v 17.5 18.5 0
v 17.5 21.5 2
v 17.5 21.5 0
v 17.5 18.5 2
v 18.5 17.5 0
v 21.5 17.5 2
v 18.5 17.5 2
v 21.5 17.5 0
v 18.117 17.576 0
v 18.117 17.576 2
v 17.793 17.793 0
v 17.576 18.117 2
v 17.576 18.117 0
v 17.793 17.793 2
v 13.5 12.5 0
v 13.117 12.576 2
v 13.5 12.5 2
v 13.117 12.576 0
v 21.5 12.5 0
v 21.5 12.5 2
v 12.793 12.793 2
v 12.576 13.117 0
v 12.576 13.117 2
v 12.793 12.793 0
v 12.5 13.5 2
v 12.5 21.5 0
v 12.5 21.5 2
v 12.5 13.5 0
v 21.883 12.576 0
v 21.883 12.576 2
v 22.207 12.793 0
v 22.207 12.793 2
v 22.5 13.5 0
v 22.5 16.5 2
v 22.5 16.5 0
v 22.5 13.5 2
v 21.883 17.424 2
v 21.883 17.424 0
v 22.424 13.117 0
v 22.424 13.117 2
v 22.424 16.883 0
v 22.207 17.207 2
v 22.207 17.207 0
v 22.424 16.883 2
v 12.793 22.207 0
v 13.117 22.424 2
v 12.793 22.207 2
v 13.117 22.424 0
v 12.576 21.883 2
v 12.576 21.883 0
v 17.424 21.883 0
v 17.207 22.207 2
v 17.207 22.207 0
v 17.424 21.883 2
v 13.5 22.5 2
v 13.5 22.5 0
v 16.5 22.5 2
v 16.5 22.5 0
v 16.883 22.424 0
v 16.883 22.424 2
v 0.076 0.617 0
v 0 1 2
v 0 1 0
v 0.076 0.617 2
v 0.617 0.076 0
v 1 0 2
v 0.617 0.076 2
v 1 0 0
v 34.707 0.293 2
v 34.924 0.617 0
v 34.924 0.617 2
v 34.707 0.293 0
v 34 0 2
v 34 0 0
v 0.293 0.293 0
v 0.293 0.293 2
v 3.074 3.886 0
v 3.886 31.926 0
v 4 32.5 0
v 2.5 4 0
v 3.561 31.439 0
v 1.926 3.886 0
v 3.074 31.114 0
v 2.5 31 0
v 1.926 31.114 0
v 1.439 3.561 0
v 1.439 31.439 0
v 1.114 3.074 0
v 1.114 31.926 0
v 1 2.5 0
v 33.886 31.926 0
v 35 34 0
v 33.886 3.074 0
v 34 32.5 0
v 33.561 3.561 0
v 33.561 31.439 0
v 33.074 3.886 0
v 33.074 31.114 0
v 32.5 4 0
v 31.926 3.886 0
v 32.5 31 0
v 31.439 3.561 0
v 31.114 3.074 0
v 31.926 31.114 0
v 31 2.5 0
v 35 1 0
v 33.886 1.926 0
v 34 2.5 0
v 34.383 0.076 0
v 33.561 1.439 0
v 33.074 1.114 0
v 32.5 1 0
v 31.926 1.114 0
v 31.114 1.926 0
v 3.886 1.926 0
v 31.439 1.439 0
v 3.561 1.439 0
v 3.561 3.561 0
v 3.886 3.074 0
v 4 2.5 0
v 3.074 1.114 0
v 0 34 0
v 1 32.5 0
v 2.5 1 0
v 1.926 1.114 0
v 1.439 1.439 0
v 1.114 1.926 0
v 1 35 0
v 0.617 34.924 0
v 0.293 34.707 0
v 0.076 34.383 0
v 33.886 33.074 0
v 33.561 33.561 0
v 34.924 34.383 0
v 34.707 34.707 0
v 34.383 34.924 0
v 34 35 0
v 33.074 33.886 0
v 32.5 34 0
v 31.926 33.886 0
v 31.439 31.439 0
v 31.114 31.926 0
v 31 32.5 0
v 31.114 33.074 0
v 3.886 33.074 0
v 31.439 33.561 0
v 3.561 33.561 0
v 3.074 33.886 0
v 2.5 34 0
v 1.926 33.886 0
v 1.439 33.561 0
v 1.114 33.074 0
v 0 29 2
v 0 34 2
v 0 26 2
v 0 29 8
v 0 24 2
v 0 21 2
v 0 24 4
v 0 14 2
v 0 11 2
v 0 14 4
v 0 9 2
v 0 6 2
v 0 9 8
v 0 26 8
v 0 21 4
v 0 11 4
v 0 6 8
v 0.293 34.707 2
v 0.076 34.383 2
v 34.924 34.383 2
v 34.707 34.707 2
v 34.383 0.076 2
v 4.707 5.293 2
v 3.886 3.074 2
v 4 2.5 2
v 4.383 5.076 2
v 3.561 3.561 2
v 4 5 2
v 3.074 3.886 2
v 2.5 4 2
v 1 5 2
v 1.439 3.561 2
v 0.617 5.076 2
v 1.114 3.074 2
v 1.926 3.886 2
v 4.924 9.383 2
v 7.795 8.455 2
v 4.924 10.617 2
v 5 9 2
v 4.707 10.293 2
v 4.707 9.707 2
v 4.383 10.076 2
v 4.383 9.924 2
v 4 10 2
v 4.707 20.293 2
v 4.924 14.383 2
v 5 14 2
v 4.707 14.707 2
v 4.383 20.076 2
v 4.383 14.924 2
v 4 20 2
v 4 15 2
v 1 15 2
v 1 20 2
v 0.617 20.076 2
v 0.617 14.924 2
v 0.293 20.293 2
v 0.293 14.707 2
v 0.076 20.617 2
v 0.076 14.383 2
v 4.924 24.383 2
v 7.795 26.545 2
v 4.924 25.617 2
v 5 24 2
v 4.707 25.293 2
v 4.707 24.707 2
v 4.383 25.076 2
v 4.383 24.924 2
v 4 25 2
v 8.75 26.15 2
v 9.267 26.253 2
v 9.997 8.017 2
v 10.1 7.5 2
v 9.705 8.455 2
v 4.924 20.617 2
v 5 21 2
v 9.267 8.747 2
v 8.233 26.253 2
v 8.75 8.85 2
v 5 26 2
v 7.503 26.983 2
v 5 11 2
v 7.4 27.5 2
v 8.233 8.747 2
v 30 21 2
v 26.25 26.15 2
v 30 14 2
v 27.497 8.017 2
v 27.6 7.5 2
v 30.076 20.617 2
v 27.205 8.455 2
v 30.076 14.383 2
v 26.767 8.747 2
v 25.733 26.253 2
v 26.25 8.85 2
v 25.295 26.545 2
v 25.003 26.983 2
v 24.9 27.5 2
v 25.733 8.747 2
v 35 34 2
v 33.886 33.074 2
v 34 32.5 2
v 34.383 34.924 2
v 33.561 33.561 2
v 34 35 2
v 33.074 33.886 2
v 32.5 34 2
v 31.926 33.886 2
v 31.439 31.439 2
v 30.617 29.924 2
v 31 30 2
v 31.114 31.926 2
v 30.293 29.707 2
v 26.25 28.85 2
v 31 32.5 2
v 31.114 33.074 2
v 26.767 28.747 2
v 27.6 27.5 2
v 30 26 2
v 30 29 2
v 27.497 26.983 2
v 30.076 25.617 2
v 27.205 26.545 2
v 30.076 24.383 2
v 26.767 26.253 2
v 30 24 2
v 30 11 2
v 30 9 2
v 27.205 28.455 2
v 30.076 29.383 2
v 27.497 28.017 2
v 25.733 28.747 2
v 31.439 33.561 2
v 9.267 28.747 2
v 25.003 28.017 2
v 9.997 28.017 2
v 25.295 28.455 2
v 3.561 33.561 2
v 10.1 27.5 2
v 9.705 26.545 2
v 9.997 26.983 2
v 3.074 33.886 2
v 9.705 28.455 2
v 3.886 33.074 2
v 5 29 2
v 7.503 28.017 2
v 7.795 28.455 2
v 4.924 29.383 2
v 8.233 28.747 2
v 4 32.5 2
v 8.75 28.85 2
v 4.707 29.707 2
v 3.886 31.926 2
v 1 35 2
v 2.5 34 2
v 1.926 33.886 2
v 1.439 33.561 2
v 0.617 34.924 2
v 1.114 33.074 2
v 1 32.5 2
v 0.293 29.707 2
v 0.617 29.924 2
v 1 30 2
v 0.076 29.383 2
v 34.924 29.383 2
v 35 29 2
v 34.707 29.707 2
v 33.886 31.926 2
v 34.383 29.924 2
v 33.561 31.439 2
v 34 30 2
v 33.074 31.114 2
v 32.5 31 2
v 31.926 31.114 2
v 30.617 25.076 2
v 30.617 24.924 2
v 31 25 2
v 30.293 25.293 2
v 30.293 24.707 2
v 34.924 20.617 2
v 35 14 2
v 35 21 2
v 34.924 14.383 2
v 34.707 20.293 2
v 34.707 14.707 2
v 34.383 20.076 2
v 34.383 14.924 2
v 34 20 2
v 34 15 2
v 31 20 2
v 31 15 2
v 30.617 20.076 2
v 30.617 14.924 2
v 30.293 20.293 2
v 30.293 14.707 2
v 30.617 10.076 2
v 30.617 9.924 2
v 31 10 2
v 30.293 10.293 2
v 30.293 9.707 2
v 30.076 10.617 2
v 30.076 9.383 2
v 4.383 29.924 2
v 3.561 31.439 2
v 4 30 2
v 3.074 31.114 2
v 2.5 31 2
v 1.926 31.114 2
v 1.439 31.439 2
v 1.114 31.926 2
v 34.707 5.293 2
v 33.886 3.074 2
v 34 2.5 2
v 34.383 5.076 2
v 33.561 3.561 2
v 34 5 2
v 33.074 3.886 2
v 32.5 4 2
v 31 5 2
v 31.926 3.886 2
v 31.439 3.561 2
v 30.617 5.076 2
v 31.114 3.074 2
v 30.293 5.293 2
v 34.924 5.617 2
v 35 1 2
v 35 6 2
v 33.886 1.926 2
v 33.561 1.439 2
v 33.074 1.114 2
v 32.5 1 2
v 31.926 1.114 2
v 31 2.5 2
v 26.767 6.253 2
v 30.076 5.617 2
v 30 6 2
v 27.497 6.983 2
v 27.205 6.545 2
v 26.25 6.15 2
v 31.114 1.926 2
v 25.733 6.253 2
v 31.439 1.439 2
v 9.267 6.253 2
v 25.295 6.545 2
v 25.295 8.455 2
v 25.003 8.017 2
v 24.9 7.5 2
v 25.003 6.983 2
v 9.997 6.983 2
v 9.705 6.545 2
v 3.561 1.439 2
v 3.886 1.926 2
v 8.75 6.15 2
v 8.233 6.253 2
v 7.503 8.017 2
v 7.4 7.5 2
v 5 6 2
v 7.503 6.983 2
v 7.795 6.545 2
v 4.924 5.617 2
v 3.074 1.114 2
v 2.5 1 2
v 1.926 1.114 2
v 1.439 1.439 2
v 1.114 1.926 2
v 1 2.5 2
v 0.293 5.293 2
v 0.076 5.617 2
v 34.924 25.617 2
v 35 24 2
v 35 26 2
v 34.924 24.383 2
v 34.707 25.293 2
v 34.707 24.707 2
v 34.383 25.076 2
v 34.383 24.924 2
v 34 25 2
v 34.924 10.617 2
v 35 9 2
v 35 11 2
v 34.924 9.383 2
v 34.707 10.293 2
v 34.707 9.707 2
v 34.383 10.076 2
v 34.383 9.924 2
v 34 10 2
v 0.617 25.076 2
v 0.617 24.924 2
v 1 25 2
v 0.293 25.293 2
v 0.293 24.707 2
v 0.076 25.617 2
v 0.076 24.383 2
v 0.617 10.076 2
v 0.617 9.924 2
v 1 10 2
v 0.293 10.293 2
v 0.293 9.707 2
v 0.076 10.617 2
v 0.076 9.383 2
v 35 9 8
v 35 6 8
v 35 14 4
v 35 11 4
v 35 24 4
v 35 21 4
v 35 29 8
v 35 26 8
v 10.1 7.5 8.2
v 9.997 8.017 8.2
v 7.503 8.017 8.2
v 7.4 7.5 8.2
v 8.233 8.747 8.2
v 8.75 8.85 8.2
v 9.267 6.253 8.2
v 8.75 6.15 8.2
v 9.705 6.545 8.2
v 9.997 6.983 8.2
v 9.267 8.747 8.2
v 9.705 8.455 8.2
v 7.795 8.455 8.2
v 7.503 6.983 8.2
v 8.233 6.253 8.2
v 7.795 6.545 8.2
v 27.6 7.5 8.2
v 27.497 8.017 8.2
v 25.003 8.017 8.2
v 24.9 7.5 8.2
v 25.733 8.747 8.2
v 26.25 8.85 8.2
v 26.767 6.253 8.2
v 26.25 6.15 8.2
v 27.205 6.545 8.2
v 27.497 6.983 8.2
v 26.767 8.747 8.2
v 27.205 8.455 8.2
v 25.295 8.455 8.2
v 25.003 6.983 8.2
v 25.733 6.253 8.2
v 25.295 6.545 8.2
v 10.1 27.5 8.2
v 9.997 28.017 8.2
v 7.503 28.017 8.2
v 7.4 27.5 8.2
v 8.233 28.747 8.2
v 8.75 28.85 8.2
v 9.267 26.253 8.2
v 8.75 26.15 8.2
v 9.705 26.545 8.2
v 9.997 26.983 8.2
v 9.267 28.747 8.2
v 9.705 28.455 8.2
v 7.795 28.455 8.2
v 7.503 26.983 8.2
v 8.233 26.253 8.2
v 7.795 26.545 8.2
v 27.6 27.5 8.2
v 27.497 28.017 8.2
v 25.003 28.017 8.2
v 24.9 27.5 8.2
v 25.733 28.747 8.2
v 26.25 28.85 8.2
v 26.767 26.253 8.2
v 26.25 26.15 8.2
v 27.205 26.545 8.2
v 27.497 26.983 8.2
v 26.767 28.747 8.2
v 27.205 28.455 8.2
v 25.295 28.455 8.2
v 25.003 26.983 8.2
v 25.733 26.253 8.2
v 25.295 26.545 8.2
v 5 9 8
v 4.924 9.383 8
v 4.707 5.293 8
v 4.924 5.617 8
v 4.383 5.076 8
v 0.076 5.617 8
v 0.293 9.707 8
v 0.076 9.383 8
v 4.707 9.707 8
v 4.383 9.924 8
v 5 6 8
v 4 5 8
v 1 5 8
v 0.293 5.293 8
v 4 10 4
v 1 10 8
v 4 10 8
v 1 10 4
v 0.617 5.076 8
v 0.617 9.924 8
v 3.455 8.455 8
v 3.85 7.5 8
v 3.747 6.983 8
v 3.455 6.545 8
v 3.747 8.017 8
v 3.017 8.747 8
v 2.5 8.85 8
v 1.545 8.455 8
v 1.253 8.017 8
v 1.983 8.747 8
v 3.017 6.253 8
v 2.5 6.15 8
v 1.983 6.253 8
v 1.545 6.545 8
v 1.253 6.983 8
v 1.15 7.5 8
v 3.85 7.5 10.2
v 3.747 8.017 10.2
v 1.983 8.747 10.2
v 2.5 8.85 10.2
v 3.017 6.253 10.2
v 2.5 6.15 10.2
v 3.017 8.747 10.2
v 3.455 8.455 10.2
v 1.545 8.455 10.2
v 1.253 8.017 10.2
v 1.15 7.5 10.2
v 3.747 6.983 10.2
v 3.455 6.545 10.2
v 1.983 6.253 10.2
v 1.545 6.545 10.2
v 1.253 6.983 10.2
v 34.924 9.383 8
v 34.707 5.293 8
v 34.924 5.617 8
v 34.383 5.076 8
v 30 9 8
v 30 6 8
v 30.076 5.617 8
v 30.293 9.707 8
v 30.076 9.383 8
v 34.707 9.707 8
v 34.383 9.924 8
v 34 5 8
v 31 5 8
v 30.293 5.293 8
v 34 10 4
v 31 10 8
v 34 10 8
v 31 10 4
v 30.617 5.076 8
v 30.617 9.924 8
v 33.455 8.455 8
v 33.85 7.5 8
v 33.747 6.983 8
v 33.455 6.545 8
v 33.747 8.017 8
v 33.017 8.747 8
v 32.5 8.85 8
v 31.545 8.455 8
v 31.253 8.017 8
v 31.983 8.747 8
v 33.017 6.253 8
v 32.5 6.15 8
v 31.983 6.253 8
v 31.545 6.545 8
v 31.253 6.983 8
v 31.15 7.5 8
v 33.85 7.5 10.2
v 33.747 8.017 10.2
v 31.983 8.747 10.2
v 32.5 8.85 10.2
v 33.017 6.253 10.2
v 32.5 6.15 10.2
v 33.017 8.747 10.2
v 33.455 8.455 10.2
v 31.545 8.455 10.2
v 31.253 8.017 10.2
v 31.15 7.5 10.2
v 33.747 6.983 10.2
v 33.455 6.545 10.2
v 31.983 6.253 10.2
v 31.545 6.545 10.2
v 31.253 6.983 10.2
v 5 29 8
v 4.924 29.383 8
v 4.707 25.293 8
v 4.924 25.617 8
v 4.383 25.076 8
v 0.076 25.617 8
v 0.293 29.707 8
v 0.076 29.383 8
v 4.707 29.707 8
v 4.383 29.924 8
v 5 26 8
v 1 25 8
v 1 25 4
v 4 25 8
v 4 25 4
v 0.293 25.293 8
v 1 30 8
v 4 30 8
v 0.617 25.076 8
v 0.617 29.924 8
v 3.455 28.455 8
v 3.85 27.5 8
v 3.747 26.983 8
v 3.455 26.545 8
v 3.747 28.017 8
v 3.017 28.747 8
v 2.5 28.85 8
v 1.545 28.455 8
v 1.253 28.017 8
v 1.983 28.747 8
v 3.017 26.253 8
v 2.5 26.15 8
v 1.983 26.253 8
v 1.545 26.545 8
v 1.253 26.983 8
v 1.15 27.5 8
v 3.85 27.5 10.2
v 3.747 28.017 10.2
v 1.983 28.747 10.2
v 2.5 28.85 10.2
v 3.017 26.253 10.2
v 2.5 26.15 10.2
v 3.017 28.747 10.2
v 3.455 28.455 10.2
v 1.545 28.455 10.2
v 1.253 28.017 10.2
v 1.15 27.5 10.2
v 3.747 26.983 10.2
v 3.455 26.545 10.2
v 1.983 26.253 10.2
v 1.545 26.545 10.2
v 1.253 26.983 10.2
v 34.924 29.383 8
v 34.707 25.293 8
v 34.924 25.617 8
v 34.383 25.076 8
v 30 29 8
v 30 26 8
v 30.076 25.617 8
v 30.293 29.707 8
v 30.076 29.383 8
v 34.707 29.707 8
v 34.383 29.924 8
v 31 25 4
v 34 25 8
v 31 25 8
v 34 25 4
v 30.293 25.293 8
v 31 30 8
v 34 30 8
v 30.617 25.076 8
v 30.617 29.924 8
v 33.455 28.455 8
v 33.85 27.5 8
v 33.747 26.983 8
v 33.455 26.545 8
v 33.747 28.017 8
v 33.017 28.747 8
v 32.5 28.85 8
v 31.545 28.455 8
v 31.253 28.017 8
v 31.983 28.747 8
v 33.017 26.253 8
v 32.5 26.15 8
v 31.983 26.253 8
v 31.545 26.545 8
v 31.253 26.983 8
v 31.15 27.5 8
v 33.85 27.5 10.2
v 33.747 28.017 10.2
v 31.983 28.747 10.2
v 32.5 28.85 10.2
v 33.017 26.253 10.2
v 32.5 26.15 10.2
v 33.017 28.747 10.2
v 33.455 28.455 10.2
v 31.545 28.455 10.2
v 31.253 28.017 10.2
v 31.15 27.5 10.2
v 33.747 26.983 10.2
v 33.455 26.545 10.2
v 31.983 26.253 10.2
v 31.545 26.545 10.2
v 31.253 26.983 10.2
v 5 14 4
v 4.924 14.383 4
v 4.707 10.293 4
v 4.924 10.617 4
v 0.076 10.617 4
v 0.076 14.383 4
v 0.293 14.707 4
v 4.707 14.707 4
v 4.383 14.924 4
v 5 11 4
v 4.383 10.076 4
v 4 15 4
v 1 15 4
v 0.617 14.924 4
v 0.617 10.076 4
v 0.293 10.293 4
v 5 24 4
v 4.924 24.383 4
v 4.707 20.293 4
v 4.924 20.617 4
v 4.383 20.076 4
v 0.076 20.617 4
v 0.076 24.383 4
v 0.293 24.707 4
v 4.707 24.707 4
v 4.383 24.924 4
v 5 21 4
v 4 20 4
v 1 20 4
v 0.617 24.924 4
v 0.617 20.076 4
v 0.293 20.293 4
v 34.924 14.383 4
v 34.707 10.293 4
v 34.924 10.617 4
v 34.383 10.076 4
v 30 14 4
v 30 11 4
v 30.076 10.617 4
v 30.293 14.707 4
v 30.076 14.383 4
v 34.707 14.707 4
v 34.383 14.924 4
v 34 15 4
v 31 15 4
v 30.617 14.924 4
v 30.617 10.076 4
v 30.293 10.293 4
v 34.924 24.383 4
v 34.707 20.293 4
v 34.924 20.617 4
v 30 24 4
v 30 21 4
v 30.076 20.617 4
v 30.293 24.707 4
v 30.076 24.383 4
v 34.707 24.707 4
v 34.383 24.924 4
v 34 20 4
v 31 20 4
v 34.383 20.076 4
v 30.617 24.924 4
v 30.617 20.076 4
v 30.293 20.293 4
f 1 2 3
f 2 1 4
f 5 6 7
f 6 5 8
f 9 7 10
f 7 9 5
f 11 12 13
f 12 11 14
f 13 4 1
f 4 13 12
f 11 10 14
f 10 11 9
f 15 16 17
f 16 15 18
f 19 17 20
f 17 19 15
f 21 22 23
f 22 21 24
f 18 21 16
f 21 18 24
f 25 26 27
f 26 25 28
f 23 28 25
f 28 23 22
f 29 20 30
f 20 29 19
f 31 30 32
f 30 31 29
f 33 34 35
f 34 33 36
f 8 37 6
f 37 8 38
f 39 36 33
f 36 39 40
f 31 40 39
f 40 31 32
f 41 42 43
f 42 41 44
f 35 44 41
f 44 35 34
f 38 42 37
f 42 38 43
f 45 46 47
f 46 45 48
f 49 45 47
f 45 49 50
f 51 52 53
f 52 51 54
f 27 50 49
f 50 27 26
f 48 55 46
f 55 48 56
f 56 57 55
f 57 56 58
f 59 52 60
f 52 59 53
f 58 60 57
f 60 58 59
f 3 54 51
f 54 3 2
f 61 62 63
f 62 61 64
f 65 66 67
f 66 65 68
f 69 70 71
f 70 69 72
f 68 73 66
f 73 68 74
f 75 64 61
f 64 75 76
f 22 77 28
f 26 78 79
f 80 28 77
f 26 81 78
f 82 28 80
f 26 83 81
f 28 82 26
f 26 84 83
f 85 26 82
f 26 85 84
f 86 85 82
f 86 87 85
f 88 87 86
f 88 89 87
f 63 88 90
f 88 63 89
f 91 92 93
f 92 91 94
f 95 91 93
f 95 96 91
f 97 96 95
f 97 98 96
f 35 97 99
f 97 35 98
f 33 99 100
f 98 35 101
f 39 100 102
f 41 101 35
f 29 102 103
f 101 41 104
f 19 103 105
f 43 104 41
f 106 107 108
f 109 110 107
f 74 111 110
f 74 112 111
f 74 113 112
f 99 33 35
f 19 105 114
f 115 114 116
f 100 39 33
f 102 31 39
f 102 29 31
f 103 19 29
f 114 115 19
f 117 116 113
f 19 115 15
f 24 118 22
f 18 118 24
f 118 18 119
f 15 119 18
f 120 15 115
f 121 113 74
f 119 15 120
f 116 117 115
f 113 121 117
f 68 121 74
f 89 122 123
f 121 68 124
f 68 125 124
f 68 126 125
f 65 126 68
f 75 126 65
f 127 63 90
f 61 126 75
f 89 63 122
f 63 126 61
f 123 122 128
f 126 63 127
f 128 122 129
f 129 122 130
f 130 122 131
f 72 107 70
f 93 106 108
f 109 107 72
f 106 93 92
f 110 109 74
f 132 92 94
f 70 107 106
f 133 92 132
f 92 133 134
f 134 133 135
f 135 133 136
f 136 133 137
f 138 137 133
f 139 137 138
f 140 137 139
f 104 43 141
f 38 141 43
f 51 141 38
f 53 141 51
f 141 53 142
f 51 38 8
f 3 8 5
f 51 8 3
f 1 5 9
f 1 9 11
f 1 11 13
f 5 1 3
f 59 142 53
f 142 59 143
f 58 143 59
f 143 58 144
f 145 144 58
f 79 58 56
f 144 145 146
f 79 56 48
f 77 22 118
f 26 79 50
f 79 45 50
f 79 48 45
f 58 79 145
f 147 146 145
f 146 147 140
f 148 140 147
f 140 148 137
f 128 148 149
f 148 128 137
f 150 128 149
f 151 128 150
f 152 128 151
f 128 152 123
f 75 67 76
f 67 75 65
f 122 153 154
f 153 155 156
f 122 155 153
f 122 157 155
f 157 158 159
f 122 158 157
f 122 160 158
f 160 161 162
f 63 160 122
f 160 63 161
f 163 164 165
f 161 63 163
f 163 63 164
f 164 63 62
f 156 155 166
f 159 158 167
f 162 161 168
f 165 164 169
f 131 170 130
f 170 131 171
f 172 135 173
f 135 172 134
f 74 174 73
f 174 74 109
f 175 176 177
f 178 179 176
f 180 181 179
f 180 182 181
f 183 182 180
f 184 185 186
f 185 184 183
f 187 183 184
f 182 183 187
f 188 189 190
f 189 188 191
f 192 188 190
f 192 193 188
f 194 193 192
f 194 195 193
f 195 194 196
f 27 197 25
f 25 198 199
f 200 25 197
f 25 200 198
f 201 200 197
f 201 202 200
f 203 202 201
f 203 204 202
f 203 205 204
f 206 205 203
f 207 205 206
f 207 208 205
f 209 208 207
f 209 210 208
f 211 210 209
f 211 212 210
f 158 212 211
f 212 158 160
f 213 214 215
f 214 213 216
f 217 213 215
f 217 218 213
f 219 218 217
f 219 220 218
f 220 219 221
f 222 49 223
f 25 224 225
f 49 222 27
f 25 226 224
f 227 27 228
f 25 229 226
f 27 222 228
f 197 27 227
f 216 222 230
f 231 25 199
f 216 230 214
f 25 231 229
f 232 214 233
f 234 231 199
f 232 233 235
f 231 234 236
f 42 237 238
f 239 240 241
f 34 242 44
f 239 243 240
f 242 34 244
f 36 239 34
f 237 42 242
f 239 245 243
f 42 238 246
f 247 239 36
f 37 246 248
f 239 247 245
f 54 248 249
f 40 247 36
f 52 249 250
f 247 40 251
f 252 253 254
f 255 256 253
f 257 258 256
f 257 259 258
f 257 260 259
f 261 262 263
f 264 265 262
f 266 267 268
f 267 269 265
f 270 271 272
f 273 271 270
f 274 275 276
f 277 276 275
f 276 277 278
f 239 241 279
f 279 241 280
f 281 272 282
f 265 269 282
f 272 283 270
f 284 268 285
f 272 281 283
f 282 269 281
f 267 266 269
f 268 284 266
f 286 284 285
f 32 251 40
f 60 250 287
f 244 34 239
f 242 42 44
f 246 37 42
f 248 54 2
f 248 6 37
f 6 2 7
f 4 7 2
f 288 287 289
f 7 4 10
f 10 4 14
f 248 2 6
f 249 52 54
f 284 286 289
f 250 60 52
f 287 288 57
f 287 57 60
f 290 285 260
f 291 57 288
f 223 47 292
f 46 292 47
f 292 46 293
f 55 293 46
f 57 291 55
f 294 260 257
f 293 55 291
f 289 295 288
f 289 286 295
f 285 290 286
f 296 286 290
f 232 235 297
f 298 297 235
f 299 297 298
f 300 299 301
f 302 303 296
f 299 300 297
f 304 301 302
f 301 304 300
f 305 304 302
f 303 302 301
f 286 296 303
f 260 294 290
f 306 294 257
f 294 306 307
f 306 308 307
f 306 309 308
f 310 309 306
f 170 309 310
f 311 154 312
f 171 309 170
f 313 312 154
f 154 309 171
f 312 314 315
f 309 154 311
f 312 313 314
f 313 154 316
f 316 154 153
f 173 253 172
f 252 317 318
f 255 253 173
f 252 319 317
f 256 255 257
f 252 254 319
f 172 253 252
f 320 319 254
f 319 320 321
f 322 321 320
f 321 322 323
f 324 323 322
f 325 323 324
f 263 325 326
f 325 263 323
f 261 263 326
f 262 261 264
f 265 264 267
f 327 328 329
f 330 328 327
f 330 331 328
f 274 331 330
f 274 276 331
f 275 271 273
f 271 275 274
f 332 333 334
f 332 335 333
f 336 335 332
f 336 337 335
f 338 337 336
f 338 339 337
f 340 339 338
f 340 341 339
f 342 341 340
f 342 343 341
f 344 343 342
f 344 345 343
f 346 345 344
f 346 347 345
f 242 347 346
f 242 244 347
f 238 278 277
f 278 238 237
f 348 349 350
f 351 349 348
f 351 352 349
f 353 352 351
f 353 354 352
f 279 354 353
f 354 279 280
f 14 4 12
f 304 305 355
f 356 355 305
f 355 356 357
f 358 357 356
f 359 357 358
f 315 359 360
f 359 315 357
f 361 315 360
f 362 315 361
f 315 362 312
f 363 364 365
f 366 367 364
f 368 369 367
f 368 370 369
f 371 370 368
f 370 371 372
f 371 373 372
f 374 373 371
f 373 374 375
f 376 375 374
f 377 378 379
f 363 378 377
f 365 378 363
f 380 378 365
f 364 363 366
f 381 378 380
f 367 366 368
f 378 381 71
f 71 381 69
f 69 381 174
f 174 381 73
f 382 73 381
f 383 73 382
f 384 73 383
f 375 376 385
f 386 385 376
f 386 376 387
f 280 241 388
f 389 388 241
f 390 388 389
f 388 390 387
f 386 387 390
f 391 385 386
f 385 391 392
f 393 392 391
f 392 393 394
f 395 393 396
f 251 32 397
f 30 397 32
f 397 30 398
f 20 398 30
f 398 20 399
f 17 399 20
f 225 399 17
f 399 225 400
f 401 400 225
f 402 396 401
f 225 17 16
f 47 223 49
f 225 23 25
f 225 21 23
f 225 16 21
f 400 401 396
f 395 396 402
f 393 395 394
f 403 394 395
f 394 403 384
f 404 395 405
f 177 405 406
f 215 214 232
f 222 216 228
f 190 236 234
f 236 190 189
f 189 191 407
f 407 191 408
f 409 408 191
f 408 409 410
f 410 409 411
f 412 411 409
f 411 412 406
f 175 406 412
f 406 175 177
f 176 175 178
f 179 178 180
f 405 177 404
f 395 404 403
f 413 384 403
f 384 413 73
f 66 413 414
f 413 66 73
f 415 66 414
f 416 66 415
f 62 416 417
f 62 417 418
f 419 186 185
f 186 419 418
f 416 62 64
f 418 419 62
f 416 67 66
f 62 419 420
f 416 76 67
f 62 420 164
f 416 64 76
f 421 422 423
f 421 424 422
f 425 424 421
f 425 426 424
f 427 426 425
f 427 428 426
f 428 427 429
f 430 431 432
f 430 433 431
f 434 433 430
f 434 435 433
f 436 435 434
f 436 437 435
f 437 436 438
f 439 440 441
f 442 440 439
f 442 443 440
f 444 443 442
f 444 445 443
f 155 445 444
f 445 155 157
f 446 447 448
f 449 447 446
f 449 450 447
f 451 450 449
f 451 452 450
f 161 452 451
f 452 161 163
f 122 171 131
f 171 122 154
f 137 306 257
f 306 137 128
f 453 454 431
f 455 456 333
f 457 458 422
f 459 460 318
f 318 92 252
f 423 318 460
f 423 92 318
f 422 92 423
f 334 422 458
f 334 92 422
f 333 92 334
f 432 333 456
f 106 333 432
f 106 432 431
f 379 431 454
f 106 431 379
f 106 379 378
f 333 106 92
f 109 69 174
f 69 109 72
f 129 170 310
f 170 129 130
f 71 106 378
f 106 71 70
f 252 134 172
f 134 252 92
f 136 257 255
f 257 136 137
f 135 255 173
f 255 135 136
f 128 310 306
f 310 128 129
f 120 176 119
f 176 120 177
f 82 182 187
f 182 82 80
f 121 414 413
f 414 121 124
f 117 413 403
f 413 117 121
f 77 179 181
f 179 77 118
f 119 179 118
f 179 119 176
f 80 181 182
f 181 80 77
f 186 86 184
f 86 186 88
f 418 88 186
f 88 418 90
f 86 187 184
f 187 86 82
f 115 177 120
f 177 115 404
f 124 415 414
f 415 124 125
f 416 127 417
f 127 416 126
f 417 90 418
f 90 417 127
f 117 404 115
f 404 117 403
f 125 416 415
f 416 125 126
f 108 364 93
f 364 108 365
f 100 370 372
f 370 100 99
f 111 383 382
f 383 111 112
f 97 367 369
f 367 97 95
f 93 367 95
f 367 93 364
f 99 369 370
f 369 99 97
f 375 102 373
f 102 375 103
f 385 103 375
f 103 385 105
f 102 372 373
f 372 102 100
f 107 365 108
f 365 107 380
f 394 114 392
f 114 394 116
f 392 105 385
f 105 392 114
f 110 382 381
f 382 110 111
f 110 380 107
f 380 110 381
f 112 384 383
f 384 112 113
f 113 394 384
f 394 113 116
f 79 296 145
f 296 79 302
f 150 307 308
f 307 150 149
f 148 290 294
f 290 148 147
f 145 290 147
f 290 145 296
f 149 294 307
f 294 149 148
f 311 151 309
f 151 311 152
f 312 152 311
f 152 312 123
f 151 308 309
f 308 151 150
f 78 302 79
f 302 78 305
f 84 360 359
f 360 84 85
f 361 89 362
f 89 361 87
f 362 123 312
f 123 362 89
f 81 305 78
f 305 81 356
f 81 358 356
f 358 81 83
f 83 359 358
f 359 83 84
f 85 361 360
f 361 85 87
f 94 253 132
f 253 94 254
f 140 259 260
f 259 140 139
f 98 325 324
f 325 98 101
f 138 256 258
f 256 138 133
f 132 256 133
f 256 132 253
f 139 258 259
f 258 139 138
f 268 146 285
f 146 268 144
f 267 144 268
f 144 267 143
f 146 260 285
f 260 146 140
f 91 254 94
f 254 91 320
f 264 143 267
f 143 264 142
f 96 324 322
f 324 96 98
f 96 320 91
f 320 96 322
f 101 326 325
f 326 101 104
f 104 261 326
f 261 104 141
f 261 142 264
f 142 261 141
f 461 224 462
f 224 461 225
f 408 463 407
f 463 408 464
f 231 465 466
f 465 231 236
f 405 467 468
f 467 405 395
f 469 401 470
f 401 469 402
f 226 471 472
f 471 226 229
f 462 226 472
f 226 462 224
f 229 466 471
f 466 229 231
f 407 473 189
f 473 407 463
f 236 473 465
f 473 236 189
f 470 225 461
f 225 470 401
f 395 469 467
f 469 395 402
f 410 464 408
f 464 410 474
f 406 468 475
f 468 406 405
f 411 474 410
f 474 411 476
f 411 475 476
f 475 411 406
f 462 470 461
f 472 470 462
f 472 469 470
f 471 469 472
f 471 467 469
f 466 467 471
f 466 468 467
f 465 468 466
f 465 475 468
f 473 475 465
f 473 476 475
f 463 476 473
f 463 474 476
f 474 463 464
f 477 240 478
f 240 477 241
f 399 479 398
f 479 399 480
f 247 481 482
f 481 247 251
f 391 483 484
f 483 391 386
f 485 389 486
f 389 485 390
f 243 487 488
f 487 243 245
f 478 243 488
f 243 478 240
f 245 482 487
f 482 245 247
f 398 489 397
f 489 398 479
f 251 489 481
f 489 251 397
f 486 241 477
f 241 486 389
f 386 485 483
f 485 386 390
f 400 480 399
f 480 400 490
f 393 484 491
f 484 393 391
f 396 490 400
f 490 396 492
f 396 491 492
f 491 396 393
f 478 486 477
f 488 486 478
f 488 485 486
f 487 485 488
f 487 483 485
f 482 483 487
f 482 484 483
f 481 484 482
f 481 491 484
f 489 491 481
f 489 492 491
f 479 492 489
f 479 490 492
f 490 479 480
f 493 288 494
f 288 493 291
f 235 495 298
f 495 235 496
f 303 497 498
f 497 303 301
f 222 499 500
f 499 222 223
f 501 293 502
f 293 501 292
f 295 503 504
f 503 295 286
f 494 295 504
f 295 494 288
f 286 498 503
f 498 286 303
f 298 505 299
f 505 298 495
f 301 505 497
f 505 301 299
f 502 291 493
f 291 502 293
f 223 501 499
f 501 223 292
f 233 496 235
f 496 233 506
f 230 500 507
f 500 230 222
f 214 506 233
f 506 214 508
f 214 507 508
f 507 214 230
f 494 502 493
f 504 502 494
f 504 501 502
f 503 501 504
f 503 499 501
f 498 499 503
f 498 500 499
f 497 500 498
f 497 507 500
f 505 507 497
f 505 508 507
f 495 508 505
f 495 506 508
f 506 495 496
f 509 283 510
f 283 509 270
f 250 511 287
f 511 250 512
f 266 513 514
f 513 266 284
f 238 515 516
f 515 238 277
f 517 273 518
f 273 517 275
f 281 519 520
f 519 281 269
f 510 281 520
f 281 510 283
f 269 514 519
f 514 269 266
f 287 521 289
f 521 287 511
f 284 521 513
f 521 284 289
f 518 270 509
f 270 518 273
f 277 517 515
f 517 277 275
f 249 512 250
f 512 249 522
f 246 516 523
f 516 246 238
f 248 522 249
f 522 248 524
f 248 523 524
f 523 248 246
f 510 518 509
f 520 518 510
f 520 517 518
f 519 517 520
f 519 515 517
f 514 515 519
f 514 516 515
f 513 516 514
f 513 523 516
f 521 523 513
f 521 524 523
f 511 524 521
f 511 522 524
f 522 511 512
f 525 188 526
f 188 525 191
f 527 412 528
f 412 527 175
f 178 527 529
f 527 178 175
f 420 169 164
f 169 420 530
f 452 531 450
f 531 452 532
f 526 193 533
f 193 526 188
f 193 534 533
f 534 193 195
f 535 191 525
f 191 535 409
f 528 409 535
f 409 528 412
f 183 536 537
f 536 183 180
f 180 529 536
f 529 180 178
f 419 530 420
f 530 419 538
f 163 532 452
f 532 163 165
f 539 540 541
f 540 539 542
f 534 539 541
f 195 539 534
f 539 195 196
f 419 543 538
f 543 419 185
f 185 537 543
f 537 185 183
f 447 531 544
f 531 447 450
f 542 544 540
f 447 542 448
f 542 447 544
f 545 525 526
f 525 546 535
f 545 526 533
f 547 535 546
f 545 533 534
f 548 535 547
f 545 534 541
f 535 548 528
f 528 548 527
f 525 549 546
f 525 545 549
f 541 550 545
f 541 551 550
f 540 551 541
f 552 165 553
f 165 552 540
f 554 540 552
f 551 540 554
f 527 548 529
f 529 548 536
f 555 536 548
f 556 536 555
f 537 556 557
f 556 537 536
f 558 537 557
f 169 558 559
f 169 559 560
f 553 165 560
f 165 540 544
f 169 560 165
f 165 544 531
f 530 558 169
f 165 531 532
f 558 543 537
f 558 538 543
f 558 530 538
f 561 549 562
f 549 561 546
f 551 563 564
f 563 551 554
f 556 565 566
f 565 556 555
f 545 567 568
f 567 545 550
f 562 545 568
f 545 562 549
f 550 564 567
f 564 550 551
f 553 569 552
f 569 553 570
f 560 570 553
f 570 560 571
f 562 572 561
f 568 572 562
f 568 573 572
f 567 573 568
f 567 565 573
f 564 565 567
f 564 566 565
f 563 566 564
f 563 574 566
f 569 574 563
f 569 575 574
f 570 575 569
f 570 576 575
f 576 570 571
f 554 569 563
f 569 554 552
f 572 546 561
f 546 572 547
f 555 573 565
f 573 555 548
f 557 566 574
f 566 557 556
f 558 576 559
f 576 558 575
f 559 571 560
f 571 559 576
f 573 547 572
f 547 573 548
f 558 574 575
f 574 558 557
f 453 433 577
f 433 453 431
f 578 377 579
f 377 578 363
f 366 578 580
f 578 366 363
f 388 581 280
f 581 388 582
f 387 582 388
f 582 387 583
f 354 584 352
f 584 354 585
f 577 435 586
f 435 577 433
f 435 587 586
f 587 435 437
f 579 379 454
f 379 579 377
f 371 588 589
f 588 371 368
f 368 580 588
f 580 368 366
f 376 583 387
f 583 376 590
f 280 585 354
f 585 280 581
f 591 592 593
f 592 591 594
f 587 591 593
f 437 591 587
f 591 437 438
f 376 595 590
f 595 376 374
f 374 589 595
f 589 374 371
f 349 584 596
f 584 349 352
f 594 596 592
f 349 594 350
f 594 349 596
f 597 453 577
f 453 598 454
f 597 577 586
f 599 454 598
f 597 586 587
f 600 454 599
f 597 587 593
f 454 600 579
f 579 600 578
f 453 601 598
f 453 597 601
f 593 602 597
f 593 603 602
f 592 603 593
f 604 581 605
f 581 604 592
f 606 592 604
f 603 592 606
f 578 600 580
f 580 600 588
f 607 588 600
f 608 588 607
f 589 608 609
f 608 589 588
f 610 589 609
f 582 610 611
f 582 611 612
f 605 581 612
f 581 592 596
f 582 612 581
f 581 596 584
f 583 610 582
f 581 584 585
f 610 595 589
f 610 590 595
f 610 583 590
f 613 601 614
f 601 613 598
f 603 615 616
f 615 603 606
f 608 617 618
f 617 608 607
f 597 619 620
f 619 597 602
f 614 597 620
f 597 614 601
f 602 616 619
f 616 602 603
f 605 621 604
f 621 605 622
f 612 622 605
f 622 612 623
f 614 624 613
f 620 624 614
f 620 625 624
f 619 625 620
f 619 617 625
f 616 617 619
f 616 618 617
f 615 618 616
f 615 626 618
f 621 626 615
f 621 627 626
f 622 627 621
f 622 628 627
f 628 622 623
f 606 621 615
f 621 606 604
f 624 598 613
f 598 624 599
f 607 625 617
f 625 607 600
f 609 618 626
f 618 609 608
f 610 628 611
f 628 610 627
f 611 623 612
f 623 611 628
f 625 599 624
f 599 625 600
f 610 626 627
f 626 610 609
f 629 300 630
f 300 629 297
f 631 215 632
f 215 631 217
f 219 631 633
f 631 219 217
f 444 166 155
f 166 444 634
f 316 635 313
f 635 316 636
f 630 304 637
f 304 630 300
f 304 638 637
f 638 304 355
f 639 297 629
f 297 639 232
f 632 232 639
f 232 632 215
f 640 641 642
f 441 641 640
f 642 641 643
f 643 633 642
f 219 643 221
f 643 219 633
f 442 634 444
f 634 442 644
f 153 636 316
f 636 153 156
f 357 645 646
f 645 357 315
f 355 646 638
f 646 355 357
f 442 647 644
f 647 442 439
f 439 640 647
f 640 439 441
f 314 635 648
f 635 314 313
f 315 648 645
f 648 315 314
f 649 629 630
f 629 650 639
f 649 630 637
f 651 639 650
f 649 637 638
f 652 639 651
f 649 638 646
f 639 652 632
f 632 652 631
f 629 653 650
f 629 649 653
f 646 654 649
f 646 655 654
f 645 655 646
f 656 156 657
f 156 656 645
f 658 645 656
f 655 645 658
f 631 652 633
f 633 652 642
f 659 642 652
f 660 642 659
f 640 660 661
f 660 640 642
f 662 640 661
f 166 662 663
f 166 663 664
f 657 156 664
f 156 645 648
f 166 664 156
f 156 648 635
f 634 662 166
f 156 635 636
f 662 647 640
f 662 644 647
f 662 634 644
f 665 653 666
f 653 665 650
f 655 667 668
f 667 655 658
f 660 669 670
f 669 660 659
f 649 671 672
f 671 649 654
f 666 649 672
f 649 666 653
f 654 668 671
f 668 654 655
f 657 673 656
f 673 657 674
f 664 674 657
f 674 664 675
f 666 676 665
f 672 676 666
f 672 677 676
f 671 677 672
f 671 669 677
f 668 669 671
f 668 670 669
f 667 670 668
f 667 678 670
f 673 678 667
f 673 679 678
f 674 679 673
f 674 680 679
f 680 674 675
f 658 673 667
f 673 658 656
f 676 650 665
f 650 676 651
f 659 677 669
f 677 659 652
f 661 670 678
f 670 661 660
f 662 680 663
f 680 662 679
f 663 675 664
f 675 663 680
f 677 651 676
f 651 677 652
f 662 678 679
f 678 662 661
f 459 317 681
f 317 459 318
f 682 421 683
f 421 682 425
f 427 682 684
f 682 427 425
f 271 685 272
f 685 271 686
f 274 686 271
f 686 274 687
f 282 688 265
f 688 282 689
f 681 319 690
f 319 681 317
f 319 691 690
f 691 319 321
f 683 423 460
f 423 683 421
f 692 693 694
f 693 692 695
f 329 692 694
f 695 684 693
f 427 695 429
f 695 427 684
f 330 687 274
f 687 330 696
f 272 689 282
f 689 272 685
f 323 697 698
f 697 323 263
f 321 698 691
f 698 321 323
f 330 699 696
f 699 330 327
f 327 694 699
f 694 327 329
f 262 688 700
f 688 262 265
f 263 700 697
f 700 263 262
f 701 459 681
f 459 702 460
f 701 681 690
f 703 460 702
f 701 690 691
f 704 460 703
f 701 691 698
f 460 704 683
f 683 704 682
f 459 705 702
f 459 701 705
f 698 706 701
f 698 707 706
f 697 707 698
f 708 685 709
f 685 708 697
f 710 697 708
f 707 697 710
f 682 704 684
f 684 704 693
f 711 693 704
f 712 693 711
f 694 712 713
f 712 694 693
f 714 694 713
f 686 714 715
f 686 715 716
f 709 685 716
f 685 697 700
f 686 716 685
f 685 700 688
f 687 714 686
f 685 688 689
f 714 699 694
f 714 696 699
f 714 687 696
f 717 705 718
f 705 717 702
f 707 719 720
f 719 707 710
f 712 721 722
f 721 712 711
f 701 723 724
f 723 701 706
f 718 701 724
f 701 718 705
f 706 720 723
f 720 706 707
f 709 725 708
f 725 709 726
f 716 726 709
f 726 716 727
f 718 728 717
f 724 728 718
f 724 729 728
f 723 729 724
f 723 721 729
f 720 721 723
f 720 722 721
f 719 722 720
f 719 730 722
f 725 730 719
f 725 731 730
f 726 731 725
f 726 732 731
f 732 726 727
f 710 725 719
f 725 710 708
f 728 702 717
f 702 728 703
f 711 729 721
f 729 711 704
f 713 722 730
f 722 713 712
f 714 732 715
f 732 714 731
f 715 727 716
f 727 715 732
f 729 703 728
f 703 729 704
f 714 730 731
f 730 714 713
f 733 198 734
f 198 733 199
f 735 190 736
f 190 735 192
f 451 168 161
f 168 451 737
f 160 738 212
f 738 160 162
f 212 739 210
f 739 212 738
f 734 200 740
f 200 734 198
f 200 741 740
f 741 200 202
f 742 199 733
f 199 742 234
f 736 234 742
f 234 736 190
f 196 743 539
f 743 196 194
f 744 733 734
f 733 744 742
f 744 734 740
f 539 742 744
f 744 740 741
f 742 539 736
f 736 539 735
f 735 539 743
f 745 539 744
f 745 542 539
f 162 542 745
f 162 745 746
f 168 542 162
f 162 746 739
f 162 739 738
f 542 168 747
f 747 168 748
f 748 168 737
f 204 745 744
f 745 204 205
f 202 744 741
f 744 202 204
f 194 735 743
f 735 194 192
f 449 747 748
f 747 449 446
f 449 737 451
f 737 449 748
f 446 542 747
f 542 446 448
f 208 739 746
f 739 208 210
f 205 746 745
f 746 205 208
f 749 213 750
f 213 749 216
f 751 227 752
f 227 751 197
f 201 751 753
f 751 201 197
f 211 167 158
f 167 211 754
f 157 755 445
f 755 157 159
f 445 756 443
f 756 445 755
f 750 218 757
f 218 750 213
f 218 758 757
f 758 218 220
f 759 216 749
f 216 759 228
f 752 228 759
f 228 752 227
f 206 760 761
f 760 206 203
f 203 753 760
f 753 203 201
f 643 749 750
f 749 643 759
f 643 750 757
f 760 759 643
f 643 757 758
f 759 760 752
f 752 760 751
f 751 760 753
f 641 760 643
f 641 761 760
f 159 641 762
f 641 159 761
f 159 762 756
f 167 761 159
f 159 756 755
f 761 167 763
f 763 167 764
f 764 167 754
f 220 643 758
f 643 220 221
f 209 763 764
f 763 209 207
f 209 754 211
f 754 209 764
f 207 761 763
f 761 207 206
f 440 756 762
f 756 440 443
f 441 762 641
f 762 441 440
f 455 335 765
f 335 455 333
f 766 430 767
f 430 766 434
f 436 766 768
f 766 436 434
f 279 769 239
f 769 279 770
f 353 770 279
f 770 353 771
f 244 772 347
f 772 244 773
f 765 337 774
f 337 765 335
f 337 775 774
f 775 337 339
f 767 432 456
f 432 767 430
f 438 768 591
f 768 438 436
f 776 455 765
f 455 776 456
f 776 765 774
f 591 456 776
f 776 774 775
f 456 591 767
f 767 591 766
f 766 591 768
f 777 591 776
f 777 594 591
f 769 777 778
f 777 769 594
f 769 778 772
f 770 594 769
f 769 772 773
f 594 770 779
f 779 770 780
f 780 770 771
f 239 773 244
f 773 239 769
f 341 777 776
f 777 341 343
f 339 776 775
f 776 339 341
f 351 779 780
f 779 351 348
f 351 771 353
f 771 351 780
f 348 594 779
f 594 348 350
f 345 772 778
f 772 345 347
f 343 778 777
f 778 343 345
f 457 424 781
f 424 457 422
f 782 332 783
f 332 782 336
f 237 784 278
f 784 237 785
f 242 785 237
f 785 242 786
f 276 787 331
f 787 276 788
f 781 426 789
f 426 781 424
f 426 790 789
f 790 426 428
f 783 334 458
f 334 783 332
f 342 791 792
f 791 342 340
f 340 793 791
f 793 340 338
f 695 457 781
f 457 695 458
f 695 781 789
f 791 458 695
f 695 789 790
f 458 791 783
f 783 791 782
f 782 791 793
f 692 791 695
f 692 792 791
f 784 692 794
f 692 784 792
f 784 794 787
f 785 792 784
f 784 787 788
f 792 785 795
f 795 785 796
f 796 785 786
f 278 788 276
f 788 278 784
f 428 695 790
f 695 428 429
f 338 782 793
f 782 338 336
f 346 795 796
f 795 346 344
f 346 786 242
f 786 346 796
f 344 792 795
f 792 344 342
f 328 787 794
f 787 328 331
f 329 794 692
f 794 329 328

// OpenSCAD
// file: basics.scad
// basics 1

$fn = 16;

cellRadius = 1.0;

cellSize = 5.0;

layerHeight = 2.0;

pinOffset = 0.15;

module cellCorner(height = layerHeight) {
    cylinder(h = height, r = cellRadius);
}

module cell(height = layerHeight) {
    translate([0, 0, 0]) {
        hull() {
            translate([cellRadius,            cellRadius, 0])            cellCorner(height);
            translate([cellSize - cellRadius, cellRadius, 0])            cellCorner(height);
            translate([cellRadius,            cellSize - cellRadius, 0]) cellCorner(height);
            translate([cellSize - cellRadius, cellSize - cellRadius, 0]) cellCorner(height);
        }
    }
}

module pin(pinOffset = 0) {
    cylinder(h = layerHeight + 0.2, r = cellRadius * 1.5 - pinOffset);
}
// main file
// einfachen Schaltglied Festblech 1

$fn = 16;

cellRadius = 1.0;

cellSize = 5.0;

layerHeight = 2.0;

blechWidth  = cellSize * 7;
blechLength = cellSize * 7;

cellCenter = cellSize / 2;

holeOffset = 0.15;

pinXOffset = 1.75;
pinYOffset = 1.5;


use <basics.scad>

module basePlate() {
    hull() {
        translate([0          , 0                    , 0]) cell();
        translate([0          , blechWidth - cellSize, 0]) cell();
        translate([blechLength - cellSize, 0                    , 0]) cell();
        translate([blechLength - cellSize, blechWidth - cellSize, 0]) cell();
    }
}

module base() {
  difference() {
    // base
    translate([0,0,0]) basePlate();
    // center hole
    translate([cellSize * 2.5, cellSize * 2.5, -0.1]) elCell();
    
    // holes for base pins
    translate([cellSize / 2             , cellSize / 2              , -0.1]) pin();
    translate([blechWidth - cellSize / 2, cellSize / 2              , -0.1]) pin();
    translate([cellSize / 2             , blechLength - cellSize / 2, -0.1]) pin();
    translate([blechWidth - cellSize / 2, blechLength - cellSize / 2, -0.1]) pin(); 
  }
}

module elCell() {
    hull() {
        translate([0       , 0       , 0]) cell(layerHeight + 0.2);
        translate([cellSize, 0       , 0]) cell(layerHeight + 0.2);
    }
    hull() {
        translate([0       , 0, 0]) cell(layerHeight + 0.2);
        translate([0, cellSize, 0]) cell(layerHeight + 0.2);
    }
    difference() {
        translate([cellSize, cellSize, 0]) 
                cube([cellRadius, cellRadius, layerHeight + 0.2]);
            translate([cellSize + cellRadius, cellSize + cellRadius, - 0.1]) 
                cylinder(r = cellRadius, h = layerHeight + 0.4);
           
        
    }
}

// guides
module guidePillar() {
    translate([0, 0, 0])               cell();
    translate([0, 0, layerHeight])     cell();
    translate([0, 0, layerHeight * 2]) cell();
    translate([cellSize / 2, cellSize / 2, layerHeight * 3]) pin(holeOffset);    
}

module pin3() {
    translate([0,0,0])               pin(holeOffset);
    translate([0,0,layerHeight])     pin(holeOffset);
    translate([0,0,layerHeight * 2]) pin(holeOffset);    
}


translate([0,0,0]) base();

// pins / supports
translate([cellSize * pinXOffset             , cellSize * pinYOffset             , layerHeight]) {
    pin3();
}
translate([blechWidth - cellSize * pinXOffset, cellSize * pinYOffset             , layerHeight]) {
    pin3();
}
translate([cellSize * pinXOffset             , blechWidth - cellSize * pinYOffset, layerHeight]) {
    pin3();
}
translate([blechWidth - cellSize * pinXOffset, blechWidth - cellSize * pinYOffset, layerHeight]) {
    pin3();
}

translate([0, 0, layerHeight]) {
    translate([0, cellSize, 0]) {
        guidePillar();
    }
    translate([blechWidth - cellSize, cellSize, 0]) {    
        guidePillar();
    } 
    translate([0, blechLength - cellSize * 2, 0]) { 
        guidePillar();
    }
    translate([blechWidth - cellSize, blechLength - cellSize * 2, 0]) {
        guidePillar();
    }
}

// d-blech support
translate([0, cellSize * 2, layerHeight]) cell();
translate([0, cellSize * 4, layerHeight]) cell();
translate([blechLength - cellSize, cellSize * 2, layerHeight]) cell();
translate([blechLength - cellSize, cellSize * 4, layerHeight]) cell();
